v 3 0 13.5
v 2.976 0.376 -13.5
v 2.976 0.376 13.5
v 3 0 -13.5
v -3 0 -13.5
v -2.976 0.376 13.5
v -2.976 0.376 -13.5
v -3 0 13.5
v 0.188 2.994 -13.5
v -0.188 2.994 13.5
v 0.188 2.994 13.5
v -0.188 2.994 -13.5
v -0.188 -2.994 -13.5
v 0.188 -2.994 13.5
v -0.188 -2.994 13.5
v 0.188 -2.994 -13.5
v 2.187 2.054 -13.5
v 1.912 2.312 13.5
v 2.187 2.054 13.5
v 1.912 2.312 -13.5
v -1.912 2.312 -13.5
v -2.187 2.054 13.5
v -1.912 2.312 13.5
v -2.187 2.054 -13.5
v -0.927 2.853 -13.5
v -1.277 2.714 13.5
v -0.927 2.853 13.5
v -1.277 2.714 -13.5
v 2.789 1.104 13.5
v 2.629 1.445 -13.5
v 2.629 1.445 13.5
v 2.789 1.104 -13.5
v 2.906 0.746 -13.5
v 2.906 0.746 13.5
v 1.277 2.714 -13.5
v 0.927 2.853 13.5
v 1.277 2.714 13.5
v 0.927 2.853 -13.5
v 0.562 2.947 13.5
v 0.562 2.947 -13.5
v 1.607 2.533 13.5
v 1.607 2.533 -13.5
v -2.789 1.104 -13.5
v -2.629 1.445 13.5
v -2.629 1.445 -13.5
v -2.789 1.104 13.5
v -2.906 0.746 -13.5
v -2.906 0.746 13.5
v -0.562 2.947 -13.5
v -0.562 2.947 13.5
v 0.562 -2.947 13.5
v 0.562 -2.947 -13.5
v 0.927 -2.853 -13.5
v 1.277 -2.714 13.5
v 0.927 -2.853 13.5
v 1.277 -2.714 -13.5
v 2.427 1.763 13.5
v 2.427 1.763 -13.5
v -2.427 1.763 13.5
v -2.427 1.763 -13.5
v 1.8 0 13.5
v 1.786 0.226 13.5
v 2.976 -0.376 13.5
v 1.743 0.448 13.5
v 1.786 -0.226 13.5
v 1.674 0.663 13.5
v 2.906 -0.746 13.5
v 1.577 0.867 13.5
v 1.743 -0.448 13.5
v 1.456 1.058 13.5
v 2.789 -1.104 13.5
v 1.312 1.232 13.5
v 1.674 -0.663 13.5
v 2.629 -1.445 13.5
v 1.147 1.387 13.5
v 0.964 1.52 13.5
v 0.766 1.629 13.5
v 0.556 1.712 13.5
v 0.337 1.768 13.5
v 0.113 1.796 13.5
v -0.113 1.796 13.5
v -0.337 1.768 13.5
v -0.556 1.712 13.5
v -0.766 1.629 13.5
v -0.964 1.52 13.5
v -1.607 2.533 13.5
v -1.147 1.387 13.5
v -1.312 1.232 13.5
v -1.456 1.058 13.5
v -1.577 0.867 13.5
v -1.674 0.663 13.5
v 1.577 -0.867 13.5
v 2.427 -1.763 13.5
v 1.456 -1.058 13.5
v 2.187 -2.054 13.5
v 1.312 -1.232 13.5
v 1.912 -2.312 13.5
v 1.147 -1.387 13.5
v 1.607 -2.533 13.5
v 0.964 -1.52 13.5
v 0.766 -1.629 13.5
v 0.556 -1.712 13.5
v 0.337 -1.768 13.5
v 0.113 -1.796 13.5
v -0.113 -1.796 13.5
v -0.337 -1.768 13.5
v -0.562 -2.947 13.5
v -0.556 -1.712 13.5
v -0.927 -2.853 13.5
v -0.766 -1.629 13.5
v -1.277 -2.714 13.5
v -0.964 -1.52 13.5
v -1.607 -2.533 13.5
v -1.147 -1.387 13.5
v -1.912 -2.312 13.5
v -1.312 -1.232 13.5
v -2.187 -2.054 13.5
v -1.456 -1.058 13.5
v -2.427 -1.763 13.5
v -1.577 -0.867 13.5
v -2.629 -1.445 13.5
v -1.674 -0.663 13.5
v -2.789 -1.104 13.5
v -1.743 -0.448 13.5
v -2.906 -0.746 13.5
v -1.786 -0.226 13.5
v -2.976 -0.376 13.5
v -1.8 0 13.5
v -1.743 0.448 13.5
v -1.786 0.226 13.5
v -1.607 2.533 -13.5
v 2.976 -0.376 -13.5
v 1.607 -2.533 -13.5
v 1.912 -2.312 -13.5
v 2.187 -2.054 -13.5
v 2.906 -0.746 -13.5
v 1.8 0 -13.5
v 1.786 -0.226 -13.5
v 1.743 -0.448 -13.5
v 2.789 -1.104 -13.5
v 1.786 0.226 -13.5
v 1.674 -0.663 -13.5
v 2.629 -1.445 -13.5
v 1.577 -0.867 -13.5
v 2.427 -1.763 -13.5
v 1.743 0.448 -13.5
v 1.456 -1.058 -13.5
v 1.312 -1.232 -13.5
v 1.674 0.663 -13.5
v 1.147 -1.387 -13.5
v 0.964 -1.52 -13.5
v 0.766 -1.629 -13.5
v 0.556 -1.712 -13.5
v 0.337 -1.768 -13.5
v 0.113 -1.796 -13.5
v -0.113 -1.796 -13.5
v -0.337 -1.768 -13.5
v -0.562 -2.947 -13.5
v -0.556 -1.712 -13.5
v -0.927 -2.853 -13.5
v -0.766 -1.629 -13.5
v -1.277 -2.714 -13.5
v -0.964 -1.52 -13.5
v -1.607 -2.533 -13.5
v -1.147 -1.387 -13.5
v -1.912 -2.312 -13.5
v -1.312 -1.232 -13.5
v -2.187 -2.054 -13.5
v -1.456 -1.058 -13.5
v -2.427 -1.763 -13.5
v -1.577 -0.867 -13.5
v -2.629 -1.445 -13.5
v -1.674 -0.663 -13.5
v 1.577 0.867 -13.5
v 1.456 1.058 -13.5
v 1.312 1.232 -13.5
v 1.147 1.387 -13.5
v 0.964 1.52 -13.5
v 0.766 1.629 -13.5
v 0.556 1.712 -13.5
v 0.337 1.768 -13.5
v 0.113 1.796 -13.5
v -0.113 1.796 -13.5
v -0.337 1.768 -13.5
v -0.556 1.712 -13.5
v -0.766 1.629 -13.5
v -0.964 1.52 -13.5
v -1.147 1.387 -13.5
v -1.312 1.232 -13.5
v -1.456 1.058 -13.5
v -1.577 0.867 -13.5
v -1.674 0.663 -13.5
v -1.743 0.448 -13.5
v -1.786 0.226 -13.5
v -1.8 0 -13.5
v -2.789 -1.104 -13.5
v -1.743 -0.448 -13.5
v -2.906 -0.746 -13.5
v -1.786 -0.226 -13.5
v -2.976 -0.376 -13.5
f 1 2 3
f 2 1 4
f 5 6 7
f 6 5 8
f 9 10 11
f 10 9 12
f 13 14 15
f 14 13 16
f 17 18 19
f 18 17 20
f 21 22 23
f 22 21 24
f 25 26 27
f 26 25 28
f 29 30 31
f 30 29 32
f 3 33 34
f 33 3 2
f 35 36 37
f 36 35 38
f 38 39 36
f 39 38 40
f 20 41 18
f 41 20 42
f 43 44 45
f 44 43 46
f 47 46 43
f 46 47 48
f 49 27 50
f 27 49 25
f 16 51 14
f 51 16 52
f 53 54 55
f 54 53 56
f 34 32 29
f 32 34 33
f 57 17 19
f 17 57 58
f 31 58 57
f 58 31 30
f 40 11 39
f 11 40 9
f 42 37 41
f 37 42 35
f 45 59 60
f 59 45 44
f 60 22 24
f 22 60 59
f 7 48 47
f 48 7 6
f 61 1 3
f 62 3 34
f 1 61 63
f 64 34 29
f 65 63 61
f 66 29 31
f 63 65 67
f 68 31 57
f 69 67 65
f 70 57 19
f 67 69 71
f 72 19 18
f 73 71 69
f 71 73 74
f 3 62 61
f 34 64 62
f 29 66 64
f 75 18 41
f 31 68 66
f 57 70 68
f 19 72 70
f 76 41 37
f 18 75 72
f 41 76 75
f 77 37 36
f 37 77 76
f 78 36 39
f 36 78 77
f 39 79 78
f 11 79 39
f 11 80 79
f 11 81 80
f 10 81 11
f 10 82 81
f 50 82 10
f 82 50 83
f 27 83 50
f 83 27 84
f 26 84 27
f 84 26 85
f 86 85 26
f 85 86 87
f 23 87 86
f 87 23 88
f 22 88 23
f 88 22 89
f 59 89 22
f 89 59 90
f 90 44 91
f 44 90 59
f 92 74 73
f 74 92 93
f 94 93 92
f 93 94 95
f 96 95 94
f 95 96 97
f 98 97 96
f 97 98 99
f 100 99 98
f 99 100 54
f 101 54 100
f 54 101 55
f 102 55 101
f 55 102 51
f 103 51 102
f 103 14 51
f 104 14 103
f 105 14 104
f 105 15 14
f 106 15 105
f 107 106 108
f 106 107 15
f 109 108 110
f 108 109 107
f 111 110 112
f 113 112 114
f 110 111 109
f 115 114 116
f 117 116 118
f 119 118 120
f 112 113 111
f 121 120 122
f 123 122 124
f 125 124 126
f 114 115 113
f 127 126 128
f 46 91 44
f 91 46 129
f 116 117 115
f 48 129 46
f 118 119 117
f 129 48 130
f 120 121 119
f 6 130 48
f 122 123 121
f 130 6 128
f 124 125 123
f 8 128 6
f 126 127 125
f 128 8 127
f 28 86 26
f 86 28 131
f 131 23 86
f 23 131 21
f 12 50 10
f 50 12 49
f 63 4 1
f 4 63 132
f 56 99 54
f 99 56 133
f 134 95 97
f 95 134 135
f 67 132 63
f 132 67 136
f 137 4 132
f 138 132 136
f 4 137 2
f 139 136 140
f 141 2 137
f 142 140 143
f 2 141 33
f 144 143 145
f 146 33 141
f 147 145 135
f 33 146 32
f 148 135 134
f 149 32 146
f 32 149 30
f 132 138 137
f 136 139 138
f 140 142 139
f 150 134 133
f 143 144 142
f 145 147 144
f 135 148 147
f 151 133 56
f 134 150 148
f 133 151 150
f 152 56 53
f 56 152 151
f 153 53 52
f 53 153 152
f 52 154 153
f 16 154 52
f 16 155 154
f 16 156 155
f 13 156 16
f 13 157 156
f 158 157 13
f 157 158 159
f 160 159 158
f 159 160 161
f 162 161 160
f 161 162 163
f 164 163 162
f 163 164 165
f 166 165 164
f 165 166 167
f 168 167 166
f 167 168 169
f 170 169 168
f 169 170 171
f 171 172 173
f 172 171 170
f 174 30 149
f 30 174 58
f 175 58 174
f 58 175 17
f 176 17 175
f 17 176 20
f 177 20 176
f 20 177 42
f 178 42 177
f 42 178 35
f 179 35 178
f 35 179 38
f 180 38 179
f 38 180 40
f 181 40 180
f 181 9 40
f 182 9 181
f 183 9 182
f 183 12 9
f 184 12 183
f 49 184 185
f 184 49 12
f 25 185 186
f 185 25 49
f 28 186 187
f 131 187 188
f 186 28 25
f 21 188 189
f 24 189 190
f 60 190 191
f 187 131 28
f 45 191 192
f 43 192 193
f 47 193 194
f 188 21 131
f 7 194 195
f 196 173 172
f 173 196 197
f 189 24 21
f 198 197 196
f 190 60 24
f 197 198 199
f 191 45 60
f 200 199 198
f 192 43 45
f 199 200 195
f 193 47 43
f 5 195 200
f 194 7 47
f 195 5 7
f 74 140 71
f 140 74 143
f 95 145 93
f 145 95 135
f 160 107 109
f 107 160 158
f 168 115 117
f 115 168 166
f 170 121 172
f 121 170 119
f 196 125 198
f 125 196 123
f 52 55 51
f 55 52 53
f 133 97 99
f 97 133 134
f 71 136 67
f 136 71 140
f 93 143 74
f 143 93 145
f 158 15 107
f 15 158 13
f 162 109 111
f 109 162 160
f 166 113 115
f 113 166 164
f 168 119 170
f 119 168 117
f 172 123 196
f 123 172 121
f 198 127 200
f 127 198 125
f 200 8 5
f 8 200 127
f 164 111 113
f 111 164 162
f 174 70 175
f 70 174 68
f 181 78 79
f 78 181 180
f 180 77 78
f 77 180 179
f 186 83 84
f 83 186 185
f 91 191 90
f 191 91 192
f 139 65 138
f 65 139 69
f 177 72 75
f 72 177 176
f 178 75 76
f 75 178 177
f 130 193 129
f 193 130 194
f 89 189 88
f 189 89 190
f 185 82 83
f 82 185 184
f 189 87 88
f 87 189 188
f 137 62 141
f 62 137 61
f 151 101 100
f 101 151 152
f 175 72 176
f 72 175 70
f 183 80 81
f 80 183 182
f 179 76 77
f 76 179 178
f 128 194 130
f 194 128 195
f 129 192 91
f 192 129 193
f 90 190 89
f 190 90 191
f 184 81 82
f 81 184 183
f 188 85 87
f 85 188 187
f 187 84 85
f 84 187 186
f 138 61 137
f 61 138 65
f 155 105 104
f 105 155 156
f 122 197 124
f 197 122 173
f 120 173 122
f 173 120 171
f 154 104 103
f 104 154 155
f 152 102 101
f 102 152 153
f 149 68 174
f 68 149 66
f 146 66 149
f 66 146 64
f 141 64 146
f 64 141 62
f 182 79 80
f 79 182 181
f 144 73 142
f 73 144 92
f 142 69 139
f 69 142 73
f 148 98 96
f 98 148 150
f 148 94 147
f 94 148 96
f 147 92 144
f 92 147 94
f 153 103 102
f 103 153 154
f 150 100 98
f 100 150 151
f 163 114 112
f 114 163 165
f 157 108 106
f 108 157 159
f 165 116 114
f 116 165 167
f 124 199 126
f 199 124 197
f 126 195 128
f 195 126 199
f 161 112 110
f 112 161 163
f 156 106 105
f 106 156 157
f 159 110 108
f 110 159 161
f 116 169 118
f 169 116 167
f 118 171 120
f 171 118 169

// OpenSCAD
$fn = 50;


difference() {
	union() {
		translate(v = [0, 0, -13.5000000000]) {
			cylinder(h = 27, r = 3.0000000000);
		}
	}
	union() {
		translate(v = [0, 0, -100.0000000000]) {
			cylinder(h = 200, r = 1.8000000000);
		}
	}
}
